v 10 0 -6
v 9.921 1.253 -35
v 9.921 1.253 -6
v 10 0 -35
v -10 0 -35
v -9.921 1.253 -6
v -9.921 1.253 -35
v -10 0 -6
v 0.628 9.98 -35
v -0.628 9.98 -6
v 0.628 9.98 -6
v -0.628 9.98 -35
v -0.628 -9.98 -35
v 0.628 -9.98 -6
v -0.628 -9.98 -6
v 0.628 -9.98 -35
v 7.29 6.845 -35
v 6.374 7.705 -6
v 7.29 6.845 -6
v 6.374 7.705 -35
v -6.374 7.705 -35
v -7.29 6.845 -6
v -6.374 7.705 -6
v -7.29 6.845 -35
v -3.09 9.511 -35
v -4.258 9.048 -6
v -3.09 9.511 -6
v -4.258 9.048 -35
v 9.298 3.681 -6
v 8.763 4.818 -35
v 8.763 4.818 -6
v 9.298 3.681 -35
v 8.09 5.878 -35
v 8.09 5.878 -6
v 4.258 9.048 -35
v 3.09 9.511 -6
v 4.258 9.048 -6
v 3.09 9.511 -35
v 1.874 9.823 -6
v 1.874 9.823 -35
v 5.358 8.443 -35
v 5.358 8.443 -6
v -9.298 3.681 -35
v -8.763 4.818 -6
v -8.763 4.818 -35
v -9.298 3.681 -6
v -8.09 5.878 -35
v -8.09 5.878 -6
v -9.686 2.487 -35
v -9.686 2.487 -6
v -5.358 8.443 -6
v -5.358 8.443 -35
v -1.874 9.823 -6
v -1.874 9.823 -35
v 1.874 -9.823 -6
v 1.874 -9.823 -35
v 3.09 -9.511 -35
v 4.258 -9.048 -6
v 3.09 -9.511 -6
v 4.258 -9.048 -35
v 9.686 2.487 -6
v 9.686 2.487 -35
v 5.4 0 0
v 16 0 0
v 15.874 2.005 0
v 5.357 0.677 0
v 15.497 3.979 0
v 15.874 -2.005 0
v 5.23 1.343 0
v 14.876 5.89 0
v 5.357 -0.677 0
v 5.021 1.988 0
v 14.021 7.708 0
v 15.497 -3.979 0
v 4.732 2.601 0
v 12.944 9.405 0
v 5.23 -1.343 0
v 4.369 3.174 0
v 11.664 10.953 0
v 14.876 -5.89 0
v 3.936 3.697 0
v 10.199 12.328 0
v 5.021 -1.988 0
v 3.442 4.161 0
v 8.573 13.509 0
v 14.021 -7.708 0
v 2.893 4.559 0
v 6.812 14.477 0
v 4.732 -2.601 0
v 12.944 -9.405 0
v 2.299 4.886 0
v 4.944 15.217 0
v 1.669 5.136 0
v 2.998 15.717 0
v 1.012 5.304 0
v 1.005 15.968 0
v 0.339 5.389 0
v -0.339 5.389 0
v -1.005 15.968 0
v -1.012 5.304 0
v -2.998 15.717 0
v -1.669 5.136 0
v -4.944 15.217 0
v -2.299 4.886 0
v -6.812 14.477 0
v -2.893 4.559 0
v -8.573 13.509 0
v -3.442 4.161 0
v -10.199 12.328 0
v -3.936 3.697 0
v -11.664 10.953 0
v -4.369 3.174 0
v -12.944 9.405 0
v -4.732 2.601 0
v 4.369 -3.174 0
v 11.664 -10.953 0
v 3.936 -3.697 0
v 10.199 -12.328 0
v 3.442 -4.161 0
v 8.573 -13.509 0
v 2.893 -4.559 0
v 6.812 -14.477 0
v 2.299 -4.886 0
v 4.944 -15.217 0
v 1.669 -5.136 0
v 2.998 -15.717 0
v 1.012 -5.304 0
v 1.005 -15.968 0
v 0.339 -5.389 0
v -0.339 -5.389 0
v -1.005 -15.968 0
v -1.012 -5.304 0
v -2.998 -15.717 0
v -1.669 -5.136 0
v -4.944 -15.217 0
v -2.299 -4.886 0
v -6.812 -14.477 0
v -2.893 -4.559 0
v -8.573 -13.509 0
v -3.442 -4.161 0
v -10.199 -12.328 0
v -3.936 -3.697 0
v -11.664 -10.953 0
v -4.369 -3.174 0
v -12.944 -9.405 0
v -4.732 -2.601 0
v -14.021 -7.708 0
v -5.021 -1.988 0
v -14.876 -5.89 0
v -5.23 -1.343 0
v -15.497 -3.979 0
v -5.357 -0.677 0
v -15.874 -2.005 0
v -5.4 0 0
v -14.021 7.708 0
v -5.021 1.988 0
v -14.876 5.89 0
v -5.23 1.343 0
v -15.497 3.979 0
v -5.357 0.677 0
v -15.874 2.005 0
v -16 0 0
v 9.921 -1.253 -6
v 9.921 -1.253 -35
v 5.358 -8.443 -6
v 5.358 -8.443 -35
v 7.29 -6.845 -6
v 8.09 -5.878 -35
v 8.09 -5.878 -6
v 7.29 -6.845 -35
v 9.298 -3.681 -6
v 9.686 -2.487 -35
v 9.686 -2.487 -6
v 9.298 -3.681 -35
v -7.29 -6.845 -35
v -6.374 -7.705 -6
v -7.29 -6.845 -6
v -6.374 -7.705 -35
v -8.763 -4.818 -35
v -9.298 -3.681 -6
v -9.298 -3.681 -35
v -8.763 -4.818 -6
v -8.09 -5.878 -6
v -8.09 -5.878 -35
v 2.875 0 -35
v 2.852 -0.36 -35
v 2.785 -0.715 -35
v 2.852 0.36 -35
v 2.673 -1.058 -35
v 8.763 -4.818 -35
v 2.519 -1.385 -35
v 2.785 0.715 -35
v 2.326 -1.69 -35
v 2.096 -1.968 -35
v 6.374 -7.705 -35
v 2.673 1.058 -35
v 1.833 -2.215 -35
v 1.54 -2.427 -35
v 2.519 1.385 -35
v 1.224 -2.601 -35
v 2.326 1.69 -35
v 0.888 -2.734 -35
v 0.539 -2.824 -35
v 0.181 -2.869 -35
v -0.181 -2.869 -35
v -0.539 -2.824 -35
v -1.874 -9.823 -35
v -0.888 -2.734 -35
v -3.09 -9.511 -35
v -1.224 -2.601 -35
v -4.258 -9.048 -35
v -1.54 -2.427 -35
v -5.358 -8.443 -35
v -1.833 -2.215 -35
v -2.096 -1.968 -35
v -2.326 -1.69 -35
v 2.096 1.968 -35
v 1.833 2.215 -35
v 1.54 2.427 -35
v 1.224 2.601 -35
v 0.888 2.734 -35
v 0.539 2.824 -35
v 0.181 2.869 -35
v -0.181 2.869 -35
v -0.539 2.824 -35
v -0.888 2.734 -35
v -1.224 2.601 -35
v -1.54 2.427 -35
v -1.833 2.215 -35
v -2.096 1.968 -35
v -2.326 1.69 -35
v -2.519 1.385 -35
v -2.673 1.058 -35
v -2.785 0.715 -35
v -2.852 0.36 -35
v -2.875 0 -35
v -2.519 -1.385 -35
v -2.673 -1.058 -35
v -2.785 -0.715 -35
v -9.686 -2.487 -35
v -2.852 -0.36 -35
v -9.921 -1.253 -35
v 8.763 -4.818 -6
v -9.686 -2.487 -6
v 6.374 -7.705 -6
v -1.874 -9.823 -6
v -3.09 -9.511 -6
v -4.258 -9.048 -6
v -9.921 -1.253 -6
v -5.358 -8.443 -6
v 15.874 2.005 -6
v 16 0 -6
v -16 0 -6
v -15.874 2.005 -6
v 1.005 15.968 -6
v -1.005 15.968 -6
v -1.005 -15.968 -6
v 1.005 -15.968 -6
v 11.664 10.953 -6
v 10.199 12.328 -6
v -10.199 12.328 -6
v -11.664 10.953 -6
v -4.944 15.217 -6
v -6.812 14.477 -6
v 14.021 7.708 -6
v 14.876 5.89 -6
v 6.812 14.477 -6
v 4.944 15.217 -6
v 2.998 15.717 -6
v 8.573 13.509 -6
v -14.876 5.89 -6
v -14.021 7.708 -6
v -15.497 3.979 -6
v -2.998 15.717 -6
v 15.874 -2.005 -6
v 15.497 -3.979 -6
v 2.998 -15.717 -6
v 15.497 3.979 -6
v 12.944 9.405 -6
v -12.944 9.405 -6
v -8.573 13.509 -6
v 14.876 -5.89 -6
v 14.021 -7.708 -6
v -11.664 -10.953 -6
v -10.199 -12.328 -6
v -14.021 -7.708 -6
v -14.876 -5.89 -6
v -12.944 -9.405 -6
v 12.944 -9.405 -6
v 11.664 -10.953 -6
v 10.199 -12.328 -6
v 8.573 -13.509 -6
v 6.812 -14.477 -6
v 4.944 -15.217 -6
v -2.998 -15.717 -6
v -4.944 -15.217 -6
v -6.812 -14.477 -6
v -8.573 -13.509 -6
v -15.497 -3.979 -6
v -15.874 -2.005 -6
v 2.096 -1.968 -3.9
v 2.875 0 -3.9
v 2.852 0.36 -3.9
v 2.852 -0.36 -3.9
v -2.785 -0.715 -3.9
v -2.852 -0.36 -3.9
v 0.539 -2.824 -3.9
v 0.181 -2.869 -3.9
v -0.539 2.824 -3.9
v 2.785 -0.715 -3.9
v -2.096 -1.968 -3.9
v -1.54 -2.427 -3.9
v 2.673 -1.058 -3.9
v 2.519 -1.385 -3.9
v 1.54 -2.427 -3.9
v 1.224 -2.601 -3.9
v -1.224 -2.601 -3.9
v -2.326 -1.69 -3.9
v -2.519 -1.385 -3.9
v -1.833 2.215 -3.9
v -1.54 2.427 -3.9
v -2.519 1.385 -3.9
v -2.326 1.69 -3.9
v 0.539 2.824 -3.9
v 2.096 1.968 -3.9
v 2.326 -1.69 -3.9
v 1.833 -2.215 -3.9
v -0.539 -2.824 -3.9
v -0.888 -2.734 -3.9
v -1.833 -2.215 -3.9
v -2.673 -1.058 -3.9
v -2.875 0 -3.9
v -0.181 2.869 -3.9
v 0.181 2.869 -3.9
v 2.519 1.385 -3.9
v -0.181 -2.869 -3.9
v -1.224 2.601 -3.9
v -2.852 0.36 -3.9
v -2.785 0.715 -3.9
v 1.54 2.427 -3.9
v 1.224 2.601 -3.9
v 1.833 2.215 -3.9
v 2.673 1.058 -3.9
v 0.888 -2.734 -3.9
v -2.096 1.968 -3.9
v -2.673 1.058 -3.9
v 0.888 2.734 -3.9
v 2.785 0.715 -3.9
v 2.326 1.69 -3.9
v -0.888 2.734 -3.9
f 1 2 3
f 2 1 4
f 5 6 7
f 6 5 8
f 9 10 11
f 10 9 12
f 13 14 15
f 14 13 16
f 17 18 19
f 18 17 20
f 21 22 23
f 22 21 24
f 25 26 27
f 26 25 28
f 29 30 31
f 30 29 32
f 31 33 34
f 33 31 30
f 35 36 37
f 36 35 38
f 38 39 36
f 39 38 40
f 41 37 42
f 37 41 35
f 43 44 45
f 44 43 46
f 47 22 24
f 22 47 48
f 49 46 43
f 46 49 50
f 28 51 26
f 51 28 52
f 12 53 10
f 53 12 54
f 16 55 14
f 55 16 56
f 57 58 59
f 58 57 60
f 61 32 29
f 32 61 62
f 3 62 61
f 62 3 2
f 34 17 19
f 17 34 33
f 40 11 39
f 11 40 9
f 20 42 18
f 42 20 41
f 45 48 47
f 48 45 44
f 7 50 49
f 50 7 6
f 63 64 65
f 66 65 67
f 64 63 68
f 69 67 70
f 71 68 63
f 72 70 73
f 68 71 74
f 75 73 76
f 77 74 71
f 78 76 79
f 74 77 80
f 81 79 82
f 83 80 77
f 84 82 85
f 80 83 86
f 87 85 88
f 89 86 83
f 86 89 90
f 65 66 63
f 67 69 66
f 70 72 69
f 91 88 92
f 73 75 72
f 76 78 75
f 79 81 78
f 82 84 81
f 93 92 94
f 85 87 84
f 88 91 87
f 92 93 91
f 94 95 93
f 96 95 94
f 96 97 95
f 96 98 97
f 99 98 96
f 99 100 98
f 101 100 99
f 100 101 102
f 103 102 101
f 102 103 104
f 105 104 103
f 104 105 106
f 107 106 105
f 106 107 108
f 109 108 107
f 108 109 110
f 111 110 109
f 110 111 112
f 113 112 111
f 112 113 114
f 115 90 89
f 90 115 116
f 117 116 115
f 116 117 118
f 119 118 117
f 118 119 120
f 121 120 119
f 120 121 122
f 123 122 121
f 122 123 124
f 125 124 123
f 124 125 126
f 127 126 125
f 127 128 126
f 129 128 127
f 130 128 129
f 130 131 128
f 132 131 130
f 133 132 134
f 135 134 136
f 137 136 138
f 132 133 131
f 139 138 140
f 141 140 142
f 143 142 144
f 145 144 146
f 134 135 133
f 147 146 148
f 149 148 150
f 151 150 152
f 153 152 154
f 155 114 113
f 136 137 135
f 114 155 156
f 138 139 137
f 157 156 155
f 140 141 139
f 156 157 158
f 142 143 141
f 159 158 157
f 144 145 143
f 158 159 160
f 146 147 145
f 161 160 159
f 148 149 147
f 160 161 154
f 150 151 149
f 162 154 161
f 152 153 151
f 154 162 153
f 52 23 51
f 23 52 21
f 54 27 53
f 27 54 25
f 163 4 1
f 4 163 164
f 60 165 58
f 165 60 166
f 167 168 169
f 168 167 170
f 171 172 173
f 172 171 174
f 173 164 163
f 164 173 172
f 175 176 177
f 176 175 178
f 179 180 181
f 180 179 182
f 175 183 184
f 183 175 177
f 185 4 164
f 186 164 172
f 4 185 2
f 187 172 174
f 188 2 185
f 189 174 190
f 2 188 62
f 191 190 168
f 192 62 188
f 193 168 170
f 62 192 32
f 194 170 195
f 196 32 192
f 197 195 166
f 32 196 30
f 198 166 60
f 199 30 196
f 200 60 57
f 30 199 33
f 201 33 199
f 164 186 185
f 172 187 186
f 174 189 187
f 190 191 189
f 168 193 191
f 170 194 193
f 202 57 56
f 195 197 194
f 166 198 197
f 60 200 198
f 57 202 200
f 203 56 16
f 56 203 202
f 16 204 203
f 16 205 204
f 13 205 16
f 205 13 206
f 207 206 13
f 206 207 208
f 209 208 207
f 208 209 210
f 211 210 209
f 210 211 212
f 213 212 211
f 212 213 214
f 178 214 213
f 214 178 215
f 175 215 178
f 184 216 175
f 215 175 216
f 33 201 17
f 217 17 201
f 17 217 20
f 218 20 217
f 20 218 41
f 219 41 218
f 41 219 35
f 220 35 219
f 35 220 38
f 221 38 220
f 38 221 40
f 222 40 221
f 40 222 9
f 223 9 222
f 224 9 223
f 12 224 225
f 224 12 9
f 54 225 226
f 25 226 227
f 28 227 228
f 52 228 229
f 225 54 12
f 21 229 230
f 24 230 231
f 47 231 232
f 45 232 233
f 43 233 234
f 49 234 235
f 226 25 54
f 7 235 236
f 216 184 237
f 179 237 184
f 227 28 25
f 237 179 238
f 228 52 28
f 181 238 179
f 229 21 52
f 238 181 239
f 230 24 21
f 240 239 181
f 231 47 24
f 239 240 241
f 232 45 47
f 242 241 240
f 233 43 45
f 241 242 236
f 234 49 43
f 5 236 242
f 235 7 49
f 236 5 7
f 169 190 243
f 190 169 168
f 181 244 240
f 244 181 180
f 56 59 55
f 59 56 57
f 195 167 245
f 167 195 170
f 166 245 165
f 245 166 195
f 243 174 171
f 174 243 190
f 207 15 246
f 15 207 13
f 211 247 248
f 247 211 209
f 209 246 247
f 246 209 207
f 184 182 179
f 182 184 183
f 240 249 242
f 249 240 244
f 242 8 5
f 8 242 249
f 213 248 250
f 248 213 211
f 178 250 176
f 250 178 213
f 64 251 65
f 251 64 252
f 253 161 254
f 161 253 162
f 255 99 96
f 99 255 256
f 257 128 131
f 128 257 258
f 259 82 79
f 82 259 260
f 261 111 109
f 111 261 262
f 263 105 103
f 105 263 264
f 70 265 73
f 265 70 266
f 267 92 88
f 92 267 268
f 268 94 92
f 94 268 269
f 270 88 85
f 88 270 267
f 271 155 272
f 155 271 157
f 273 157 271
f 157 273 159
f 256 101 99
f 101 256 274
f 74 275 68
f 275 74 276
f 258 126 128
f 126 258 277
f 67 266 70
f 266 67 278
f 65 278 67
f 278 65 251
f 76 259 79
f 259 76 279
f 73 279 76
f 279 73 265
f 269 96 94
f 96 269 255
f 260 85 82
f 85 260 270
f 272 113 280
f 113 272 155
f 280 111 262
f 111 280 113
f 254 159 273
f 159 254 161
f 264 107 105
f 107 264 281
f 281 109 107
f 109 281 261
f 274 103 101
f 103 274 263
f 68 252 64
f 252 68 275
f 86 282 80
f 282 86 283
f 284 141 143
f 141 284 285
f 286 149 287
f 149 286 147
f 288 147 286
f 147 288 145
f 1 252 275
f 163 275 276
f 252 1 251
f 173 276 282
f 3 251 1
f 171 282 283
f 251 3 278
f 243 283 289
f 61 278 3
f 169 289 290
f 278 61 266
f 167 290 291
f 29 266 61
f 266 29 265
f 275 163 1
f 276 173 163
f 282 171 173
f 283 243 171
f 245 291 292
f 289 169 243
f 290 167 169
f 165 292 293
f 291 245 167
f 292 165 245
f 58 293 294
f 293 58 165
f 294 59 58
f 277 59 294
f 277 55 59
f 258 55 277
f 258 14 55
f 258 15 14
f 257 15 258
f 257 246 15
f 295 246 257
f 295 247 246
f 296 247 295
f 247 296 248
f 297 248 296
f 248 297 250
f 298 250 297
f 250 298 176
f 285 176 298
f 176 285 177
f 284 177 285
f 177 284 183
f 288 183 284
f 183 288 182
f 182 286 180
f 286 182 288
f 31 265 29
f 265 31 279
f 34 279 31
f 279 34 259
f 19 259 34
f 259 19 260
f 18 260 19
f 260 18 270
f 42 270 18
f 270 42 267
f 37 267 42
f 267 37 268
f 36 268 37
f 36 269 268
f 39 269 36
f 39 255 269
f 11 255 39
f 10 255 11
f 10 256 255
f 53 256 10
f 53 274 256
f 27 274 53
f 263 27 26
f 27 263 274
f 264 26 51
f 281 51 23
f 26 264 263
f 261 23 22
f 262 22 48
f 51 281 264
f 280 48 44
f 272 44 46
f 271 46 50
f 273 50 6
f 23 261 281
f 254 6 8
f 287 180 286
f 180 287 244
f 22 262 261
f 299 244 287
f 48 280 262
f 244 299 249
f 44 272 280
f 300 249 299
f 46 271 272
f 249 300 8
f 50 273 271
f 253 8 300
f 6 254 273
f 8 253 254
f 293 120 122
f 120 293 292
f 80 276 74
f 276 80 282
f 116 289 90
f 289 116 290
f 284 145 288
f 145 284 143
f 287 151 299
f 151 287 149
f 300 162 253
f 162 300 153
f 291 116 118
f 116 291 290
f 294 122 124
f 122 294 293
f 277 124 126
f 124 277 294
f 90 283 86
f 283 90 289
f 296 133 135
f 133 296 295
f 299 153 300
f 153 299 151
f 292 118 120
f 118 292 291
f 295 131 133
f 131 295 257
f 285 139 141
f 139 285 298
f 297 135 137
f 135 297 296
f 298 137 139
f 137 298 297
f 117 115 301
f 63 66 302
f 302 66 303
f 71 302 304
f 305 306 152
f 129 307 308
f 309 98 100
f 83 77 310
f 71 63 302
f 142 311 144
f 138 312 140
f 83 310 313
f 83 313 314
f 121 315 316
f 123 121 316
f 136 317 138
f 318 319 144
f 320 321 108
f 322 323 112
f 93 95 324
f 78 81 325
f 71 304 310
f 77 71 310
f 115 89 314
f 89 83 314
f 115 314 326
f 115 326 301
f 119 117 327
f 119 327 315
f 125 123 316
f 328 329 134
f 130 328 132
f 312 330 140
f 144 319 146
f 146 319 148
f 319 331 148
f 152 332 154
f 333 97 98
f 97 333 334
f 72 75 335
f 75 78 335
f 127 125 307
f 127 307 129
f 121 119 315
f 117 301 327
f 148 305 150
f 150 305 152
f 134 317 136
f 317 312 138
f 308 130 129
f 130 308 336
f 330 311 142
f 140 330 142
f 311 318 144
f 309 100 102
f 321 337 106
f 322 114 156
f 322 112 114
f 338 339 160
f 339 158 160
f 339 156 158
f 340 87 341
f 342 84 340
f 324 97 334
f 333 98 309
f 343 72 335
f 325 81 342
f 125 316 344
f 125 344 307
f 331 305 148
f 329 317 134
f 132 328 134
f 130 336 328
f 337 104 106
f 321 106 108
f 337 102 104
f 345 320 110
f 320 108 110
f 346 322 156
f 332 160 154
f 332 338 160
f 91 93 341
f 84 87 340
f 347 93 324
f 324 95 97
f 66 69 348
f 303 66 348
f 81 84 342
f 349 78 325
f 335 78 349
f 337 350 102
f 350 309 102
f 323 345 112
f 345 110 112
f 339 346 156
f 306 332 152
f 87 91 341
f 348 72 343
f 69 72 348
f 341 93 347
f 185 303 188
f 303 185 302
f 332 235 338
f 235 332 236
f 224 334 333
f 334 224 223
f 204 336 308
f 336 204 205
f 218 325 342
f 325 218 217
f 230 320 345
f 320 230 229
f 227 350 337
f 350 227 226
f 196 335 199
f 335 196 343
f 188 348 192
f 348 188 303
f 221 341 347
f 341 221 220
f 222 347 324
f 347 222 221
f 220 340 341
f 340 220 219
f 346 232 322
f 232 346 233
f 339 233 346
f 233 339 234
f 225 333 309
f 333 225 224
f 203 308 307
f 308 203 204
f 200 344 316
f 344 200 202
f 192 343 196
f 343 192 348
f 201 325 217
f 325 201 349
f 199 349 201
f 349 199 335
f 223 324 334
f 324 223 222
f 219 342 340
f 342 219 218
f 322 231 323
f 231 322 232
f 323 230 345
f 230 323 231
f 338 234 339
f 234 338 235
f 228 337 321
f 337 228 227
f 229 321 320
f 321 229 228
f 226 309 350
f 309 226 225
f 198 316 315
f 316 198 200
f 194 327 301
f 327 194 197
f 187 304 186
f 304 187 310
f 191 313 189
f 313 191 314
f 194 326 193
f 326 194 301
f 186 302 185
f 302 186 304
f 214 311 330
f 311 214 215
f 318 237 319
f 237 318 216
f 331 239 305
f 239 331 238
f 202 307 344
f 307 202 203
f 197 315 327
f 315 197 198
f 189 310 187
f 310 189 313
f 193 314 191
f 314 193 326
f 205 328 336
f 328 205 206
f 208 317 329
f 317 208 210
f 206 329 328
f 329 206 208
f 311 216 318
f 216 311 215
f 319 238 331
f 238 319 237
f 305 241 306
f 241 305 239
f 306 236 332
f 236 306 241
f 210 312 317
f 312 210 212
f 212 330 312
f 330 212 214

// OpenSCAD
$fn = 50;


difference() {
	union() {
		translate(v = [0, 0, -35.0000000000]) {
			cylinder(h = 35, r = 10.0000000000);
		}
		translate(v = [0, 0, -6.0000000000]) {
			cylinder(h = 6, r = 16.0000000000);
		}
	}
	union() {
		translate(v = [0, 0, 0]) {
			rotate(a = [0, 0, 0]) {
				difference() {
					union() {
						#translate(v = [0, 0, -35.0000000000]) {
							cylinder(h = 35, r = 2.6000000000);
						}
						#translate(v = [0, 0, -3.9000000000]) {
							cylinder(h = 3.9000000000, r = 10.0000000000, r1 = 2.8750000000, r2 = 5.4000000000);
						}
						#translate(v = [0, 0, -35.0000000000]) {
							cylinder(h = 35, r = 2.8750000000);
						}
						#translate(v = [0, 0, -35.0000000000]) {
							cylinder(h = 35, r = 2.6000000000);
						}
					}
					union();
				}
			}
		}
	}
}
